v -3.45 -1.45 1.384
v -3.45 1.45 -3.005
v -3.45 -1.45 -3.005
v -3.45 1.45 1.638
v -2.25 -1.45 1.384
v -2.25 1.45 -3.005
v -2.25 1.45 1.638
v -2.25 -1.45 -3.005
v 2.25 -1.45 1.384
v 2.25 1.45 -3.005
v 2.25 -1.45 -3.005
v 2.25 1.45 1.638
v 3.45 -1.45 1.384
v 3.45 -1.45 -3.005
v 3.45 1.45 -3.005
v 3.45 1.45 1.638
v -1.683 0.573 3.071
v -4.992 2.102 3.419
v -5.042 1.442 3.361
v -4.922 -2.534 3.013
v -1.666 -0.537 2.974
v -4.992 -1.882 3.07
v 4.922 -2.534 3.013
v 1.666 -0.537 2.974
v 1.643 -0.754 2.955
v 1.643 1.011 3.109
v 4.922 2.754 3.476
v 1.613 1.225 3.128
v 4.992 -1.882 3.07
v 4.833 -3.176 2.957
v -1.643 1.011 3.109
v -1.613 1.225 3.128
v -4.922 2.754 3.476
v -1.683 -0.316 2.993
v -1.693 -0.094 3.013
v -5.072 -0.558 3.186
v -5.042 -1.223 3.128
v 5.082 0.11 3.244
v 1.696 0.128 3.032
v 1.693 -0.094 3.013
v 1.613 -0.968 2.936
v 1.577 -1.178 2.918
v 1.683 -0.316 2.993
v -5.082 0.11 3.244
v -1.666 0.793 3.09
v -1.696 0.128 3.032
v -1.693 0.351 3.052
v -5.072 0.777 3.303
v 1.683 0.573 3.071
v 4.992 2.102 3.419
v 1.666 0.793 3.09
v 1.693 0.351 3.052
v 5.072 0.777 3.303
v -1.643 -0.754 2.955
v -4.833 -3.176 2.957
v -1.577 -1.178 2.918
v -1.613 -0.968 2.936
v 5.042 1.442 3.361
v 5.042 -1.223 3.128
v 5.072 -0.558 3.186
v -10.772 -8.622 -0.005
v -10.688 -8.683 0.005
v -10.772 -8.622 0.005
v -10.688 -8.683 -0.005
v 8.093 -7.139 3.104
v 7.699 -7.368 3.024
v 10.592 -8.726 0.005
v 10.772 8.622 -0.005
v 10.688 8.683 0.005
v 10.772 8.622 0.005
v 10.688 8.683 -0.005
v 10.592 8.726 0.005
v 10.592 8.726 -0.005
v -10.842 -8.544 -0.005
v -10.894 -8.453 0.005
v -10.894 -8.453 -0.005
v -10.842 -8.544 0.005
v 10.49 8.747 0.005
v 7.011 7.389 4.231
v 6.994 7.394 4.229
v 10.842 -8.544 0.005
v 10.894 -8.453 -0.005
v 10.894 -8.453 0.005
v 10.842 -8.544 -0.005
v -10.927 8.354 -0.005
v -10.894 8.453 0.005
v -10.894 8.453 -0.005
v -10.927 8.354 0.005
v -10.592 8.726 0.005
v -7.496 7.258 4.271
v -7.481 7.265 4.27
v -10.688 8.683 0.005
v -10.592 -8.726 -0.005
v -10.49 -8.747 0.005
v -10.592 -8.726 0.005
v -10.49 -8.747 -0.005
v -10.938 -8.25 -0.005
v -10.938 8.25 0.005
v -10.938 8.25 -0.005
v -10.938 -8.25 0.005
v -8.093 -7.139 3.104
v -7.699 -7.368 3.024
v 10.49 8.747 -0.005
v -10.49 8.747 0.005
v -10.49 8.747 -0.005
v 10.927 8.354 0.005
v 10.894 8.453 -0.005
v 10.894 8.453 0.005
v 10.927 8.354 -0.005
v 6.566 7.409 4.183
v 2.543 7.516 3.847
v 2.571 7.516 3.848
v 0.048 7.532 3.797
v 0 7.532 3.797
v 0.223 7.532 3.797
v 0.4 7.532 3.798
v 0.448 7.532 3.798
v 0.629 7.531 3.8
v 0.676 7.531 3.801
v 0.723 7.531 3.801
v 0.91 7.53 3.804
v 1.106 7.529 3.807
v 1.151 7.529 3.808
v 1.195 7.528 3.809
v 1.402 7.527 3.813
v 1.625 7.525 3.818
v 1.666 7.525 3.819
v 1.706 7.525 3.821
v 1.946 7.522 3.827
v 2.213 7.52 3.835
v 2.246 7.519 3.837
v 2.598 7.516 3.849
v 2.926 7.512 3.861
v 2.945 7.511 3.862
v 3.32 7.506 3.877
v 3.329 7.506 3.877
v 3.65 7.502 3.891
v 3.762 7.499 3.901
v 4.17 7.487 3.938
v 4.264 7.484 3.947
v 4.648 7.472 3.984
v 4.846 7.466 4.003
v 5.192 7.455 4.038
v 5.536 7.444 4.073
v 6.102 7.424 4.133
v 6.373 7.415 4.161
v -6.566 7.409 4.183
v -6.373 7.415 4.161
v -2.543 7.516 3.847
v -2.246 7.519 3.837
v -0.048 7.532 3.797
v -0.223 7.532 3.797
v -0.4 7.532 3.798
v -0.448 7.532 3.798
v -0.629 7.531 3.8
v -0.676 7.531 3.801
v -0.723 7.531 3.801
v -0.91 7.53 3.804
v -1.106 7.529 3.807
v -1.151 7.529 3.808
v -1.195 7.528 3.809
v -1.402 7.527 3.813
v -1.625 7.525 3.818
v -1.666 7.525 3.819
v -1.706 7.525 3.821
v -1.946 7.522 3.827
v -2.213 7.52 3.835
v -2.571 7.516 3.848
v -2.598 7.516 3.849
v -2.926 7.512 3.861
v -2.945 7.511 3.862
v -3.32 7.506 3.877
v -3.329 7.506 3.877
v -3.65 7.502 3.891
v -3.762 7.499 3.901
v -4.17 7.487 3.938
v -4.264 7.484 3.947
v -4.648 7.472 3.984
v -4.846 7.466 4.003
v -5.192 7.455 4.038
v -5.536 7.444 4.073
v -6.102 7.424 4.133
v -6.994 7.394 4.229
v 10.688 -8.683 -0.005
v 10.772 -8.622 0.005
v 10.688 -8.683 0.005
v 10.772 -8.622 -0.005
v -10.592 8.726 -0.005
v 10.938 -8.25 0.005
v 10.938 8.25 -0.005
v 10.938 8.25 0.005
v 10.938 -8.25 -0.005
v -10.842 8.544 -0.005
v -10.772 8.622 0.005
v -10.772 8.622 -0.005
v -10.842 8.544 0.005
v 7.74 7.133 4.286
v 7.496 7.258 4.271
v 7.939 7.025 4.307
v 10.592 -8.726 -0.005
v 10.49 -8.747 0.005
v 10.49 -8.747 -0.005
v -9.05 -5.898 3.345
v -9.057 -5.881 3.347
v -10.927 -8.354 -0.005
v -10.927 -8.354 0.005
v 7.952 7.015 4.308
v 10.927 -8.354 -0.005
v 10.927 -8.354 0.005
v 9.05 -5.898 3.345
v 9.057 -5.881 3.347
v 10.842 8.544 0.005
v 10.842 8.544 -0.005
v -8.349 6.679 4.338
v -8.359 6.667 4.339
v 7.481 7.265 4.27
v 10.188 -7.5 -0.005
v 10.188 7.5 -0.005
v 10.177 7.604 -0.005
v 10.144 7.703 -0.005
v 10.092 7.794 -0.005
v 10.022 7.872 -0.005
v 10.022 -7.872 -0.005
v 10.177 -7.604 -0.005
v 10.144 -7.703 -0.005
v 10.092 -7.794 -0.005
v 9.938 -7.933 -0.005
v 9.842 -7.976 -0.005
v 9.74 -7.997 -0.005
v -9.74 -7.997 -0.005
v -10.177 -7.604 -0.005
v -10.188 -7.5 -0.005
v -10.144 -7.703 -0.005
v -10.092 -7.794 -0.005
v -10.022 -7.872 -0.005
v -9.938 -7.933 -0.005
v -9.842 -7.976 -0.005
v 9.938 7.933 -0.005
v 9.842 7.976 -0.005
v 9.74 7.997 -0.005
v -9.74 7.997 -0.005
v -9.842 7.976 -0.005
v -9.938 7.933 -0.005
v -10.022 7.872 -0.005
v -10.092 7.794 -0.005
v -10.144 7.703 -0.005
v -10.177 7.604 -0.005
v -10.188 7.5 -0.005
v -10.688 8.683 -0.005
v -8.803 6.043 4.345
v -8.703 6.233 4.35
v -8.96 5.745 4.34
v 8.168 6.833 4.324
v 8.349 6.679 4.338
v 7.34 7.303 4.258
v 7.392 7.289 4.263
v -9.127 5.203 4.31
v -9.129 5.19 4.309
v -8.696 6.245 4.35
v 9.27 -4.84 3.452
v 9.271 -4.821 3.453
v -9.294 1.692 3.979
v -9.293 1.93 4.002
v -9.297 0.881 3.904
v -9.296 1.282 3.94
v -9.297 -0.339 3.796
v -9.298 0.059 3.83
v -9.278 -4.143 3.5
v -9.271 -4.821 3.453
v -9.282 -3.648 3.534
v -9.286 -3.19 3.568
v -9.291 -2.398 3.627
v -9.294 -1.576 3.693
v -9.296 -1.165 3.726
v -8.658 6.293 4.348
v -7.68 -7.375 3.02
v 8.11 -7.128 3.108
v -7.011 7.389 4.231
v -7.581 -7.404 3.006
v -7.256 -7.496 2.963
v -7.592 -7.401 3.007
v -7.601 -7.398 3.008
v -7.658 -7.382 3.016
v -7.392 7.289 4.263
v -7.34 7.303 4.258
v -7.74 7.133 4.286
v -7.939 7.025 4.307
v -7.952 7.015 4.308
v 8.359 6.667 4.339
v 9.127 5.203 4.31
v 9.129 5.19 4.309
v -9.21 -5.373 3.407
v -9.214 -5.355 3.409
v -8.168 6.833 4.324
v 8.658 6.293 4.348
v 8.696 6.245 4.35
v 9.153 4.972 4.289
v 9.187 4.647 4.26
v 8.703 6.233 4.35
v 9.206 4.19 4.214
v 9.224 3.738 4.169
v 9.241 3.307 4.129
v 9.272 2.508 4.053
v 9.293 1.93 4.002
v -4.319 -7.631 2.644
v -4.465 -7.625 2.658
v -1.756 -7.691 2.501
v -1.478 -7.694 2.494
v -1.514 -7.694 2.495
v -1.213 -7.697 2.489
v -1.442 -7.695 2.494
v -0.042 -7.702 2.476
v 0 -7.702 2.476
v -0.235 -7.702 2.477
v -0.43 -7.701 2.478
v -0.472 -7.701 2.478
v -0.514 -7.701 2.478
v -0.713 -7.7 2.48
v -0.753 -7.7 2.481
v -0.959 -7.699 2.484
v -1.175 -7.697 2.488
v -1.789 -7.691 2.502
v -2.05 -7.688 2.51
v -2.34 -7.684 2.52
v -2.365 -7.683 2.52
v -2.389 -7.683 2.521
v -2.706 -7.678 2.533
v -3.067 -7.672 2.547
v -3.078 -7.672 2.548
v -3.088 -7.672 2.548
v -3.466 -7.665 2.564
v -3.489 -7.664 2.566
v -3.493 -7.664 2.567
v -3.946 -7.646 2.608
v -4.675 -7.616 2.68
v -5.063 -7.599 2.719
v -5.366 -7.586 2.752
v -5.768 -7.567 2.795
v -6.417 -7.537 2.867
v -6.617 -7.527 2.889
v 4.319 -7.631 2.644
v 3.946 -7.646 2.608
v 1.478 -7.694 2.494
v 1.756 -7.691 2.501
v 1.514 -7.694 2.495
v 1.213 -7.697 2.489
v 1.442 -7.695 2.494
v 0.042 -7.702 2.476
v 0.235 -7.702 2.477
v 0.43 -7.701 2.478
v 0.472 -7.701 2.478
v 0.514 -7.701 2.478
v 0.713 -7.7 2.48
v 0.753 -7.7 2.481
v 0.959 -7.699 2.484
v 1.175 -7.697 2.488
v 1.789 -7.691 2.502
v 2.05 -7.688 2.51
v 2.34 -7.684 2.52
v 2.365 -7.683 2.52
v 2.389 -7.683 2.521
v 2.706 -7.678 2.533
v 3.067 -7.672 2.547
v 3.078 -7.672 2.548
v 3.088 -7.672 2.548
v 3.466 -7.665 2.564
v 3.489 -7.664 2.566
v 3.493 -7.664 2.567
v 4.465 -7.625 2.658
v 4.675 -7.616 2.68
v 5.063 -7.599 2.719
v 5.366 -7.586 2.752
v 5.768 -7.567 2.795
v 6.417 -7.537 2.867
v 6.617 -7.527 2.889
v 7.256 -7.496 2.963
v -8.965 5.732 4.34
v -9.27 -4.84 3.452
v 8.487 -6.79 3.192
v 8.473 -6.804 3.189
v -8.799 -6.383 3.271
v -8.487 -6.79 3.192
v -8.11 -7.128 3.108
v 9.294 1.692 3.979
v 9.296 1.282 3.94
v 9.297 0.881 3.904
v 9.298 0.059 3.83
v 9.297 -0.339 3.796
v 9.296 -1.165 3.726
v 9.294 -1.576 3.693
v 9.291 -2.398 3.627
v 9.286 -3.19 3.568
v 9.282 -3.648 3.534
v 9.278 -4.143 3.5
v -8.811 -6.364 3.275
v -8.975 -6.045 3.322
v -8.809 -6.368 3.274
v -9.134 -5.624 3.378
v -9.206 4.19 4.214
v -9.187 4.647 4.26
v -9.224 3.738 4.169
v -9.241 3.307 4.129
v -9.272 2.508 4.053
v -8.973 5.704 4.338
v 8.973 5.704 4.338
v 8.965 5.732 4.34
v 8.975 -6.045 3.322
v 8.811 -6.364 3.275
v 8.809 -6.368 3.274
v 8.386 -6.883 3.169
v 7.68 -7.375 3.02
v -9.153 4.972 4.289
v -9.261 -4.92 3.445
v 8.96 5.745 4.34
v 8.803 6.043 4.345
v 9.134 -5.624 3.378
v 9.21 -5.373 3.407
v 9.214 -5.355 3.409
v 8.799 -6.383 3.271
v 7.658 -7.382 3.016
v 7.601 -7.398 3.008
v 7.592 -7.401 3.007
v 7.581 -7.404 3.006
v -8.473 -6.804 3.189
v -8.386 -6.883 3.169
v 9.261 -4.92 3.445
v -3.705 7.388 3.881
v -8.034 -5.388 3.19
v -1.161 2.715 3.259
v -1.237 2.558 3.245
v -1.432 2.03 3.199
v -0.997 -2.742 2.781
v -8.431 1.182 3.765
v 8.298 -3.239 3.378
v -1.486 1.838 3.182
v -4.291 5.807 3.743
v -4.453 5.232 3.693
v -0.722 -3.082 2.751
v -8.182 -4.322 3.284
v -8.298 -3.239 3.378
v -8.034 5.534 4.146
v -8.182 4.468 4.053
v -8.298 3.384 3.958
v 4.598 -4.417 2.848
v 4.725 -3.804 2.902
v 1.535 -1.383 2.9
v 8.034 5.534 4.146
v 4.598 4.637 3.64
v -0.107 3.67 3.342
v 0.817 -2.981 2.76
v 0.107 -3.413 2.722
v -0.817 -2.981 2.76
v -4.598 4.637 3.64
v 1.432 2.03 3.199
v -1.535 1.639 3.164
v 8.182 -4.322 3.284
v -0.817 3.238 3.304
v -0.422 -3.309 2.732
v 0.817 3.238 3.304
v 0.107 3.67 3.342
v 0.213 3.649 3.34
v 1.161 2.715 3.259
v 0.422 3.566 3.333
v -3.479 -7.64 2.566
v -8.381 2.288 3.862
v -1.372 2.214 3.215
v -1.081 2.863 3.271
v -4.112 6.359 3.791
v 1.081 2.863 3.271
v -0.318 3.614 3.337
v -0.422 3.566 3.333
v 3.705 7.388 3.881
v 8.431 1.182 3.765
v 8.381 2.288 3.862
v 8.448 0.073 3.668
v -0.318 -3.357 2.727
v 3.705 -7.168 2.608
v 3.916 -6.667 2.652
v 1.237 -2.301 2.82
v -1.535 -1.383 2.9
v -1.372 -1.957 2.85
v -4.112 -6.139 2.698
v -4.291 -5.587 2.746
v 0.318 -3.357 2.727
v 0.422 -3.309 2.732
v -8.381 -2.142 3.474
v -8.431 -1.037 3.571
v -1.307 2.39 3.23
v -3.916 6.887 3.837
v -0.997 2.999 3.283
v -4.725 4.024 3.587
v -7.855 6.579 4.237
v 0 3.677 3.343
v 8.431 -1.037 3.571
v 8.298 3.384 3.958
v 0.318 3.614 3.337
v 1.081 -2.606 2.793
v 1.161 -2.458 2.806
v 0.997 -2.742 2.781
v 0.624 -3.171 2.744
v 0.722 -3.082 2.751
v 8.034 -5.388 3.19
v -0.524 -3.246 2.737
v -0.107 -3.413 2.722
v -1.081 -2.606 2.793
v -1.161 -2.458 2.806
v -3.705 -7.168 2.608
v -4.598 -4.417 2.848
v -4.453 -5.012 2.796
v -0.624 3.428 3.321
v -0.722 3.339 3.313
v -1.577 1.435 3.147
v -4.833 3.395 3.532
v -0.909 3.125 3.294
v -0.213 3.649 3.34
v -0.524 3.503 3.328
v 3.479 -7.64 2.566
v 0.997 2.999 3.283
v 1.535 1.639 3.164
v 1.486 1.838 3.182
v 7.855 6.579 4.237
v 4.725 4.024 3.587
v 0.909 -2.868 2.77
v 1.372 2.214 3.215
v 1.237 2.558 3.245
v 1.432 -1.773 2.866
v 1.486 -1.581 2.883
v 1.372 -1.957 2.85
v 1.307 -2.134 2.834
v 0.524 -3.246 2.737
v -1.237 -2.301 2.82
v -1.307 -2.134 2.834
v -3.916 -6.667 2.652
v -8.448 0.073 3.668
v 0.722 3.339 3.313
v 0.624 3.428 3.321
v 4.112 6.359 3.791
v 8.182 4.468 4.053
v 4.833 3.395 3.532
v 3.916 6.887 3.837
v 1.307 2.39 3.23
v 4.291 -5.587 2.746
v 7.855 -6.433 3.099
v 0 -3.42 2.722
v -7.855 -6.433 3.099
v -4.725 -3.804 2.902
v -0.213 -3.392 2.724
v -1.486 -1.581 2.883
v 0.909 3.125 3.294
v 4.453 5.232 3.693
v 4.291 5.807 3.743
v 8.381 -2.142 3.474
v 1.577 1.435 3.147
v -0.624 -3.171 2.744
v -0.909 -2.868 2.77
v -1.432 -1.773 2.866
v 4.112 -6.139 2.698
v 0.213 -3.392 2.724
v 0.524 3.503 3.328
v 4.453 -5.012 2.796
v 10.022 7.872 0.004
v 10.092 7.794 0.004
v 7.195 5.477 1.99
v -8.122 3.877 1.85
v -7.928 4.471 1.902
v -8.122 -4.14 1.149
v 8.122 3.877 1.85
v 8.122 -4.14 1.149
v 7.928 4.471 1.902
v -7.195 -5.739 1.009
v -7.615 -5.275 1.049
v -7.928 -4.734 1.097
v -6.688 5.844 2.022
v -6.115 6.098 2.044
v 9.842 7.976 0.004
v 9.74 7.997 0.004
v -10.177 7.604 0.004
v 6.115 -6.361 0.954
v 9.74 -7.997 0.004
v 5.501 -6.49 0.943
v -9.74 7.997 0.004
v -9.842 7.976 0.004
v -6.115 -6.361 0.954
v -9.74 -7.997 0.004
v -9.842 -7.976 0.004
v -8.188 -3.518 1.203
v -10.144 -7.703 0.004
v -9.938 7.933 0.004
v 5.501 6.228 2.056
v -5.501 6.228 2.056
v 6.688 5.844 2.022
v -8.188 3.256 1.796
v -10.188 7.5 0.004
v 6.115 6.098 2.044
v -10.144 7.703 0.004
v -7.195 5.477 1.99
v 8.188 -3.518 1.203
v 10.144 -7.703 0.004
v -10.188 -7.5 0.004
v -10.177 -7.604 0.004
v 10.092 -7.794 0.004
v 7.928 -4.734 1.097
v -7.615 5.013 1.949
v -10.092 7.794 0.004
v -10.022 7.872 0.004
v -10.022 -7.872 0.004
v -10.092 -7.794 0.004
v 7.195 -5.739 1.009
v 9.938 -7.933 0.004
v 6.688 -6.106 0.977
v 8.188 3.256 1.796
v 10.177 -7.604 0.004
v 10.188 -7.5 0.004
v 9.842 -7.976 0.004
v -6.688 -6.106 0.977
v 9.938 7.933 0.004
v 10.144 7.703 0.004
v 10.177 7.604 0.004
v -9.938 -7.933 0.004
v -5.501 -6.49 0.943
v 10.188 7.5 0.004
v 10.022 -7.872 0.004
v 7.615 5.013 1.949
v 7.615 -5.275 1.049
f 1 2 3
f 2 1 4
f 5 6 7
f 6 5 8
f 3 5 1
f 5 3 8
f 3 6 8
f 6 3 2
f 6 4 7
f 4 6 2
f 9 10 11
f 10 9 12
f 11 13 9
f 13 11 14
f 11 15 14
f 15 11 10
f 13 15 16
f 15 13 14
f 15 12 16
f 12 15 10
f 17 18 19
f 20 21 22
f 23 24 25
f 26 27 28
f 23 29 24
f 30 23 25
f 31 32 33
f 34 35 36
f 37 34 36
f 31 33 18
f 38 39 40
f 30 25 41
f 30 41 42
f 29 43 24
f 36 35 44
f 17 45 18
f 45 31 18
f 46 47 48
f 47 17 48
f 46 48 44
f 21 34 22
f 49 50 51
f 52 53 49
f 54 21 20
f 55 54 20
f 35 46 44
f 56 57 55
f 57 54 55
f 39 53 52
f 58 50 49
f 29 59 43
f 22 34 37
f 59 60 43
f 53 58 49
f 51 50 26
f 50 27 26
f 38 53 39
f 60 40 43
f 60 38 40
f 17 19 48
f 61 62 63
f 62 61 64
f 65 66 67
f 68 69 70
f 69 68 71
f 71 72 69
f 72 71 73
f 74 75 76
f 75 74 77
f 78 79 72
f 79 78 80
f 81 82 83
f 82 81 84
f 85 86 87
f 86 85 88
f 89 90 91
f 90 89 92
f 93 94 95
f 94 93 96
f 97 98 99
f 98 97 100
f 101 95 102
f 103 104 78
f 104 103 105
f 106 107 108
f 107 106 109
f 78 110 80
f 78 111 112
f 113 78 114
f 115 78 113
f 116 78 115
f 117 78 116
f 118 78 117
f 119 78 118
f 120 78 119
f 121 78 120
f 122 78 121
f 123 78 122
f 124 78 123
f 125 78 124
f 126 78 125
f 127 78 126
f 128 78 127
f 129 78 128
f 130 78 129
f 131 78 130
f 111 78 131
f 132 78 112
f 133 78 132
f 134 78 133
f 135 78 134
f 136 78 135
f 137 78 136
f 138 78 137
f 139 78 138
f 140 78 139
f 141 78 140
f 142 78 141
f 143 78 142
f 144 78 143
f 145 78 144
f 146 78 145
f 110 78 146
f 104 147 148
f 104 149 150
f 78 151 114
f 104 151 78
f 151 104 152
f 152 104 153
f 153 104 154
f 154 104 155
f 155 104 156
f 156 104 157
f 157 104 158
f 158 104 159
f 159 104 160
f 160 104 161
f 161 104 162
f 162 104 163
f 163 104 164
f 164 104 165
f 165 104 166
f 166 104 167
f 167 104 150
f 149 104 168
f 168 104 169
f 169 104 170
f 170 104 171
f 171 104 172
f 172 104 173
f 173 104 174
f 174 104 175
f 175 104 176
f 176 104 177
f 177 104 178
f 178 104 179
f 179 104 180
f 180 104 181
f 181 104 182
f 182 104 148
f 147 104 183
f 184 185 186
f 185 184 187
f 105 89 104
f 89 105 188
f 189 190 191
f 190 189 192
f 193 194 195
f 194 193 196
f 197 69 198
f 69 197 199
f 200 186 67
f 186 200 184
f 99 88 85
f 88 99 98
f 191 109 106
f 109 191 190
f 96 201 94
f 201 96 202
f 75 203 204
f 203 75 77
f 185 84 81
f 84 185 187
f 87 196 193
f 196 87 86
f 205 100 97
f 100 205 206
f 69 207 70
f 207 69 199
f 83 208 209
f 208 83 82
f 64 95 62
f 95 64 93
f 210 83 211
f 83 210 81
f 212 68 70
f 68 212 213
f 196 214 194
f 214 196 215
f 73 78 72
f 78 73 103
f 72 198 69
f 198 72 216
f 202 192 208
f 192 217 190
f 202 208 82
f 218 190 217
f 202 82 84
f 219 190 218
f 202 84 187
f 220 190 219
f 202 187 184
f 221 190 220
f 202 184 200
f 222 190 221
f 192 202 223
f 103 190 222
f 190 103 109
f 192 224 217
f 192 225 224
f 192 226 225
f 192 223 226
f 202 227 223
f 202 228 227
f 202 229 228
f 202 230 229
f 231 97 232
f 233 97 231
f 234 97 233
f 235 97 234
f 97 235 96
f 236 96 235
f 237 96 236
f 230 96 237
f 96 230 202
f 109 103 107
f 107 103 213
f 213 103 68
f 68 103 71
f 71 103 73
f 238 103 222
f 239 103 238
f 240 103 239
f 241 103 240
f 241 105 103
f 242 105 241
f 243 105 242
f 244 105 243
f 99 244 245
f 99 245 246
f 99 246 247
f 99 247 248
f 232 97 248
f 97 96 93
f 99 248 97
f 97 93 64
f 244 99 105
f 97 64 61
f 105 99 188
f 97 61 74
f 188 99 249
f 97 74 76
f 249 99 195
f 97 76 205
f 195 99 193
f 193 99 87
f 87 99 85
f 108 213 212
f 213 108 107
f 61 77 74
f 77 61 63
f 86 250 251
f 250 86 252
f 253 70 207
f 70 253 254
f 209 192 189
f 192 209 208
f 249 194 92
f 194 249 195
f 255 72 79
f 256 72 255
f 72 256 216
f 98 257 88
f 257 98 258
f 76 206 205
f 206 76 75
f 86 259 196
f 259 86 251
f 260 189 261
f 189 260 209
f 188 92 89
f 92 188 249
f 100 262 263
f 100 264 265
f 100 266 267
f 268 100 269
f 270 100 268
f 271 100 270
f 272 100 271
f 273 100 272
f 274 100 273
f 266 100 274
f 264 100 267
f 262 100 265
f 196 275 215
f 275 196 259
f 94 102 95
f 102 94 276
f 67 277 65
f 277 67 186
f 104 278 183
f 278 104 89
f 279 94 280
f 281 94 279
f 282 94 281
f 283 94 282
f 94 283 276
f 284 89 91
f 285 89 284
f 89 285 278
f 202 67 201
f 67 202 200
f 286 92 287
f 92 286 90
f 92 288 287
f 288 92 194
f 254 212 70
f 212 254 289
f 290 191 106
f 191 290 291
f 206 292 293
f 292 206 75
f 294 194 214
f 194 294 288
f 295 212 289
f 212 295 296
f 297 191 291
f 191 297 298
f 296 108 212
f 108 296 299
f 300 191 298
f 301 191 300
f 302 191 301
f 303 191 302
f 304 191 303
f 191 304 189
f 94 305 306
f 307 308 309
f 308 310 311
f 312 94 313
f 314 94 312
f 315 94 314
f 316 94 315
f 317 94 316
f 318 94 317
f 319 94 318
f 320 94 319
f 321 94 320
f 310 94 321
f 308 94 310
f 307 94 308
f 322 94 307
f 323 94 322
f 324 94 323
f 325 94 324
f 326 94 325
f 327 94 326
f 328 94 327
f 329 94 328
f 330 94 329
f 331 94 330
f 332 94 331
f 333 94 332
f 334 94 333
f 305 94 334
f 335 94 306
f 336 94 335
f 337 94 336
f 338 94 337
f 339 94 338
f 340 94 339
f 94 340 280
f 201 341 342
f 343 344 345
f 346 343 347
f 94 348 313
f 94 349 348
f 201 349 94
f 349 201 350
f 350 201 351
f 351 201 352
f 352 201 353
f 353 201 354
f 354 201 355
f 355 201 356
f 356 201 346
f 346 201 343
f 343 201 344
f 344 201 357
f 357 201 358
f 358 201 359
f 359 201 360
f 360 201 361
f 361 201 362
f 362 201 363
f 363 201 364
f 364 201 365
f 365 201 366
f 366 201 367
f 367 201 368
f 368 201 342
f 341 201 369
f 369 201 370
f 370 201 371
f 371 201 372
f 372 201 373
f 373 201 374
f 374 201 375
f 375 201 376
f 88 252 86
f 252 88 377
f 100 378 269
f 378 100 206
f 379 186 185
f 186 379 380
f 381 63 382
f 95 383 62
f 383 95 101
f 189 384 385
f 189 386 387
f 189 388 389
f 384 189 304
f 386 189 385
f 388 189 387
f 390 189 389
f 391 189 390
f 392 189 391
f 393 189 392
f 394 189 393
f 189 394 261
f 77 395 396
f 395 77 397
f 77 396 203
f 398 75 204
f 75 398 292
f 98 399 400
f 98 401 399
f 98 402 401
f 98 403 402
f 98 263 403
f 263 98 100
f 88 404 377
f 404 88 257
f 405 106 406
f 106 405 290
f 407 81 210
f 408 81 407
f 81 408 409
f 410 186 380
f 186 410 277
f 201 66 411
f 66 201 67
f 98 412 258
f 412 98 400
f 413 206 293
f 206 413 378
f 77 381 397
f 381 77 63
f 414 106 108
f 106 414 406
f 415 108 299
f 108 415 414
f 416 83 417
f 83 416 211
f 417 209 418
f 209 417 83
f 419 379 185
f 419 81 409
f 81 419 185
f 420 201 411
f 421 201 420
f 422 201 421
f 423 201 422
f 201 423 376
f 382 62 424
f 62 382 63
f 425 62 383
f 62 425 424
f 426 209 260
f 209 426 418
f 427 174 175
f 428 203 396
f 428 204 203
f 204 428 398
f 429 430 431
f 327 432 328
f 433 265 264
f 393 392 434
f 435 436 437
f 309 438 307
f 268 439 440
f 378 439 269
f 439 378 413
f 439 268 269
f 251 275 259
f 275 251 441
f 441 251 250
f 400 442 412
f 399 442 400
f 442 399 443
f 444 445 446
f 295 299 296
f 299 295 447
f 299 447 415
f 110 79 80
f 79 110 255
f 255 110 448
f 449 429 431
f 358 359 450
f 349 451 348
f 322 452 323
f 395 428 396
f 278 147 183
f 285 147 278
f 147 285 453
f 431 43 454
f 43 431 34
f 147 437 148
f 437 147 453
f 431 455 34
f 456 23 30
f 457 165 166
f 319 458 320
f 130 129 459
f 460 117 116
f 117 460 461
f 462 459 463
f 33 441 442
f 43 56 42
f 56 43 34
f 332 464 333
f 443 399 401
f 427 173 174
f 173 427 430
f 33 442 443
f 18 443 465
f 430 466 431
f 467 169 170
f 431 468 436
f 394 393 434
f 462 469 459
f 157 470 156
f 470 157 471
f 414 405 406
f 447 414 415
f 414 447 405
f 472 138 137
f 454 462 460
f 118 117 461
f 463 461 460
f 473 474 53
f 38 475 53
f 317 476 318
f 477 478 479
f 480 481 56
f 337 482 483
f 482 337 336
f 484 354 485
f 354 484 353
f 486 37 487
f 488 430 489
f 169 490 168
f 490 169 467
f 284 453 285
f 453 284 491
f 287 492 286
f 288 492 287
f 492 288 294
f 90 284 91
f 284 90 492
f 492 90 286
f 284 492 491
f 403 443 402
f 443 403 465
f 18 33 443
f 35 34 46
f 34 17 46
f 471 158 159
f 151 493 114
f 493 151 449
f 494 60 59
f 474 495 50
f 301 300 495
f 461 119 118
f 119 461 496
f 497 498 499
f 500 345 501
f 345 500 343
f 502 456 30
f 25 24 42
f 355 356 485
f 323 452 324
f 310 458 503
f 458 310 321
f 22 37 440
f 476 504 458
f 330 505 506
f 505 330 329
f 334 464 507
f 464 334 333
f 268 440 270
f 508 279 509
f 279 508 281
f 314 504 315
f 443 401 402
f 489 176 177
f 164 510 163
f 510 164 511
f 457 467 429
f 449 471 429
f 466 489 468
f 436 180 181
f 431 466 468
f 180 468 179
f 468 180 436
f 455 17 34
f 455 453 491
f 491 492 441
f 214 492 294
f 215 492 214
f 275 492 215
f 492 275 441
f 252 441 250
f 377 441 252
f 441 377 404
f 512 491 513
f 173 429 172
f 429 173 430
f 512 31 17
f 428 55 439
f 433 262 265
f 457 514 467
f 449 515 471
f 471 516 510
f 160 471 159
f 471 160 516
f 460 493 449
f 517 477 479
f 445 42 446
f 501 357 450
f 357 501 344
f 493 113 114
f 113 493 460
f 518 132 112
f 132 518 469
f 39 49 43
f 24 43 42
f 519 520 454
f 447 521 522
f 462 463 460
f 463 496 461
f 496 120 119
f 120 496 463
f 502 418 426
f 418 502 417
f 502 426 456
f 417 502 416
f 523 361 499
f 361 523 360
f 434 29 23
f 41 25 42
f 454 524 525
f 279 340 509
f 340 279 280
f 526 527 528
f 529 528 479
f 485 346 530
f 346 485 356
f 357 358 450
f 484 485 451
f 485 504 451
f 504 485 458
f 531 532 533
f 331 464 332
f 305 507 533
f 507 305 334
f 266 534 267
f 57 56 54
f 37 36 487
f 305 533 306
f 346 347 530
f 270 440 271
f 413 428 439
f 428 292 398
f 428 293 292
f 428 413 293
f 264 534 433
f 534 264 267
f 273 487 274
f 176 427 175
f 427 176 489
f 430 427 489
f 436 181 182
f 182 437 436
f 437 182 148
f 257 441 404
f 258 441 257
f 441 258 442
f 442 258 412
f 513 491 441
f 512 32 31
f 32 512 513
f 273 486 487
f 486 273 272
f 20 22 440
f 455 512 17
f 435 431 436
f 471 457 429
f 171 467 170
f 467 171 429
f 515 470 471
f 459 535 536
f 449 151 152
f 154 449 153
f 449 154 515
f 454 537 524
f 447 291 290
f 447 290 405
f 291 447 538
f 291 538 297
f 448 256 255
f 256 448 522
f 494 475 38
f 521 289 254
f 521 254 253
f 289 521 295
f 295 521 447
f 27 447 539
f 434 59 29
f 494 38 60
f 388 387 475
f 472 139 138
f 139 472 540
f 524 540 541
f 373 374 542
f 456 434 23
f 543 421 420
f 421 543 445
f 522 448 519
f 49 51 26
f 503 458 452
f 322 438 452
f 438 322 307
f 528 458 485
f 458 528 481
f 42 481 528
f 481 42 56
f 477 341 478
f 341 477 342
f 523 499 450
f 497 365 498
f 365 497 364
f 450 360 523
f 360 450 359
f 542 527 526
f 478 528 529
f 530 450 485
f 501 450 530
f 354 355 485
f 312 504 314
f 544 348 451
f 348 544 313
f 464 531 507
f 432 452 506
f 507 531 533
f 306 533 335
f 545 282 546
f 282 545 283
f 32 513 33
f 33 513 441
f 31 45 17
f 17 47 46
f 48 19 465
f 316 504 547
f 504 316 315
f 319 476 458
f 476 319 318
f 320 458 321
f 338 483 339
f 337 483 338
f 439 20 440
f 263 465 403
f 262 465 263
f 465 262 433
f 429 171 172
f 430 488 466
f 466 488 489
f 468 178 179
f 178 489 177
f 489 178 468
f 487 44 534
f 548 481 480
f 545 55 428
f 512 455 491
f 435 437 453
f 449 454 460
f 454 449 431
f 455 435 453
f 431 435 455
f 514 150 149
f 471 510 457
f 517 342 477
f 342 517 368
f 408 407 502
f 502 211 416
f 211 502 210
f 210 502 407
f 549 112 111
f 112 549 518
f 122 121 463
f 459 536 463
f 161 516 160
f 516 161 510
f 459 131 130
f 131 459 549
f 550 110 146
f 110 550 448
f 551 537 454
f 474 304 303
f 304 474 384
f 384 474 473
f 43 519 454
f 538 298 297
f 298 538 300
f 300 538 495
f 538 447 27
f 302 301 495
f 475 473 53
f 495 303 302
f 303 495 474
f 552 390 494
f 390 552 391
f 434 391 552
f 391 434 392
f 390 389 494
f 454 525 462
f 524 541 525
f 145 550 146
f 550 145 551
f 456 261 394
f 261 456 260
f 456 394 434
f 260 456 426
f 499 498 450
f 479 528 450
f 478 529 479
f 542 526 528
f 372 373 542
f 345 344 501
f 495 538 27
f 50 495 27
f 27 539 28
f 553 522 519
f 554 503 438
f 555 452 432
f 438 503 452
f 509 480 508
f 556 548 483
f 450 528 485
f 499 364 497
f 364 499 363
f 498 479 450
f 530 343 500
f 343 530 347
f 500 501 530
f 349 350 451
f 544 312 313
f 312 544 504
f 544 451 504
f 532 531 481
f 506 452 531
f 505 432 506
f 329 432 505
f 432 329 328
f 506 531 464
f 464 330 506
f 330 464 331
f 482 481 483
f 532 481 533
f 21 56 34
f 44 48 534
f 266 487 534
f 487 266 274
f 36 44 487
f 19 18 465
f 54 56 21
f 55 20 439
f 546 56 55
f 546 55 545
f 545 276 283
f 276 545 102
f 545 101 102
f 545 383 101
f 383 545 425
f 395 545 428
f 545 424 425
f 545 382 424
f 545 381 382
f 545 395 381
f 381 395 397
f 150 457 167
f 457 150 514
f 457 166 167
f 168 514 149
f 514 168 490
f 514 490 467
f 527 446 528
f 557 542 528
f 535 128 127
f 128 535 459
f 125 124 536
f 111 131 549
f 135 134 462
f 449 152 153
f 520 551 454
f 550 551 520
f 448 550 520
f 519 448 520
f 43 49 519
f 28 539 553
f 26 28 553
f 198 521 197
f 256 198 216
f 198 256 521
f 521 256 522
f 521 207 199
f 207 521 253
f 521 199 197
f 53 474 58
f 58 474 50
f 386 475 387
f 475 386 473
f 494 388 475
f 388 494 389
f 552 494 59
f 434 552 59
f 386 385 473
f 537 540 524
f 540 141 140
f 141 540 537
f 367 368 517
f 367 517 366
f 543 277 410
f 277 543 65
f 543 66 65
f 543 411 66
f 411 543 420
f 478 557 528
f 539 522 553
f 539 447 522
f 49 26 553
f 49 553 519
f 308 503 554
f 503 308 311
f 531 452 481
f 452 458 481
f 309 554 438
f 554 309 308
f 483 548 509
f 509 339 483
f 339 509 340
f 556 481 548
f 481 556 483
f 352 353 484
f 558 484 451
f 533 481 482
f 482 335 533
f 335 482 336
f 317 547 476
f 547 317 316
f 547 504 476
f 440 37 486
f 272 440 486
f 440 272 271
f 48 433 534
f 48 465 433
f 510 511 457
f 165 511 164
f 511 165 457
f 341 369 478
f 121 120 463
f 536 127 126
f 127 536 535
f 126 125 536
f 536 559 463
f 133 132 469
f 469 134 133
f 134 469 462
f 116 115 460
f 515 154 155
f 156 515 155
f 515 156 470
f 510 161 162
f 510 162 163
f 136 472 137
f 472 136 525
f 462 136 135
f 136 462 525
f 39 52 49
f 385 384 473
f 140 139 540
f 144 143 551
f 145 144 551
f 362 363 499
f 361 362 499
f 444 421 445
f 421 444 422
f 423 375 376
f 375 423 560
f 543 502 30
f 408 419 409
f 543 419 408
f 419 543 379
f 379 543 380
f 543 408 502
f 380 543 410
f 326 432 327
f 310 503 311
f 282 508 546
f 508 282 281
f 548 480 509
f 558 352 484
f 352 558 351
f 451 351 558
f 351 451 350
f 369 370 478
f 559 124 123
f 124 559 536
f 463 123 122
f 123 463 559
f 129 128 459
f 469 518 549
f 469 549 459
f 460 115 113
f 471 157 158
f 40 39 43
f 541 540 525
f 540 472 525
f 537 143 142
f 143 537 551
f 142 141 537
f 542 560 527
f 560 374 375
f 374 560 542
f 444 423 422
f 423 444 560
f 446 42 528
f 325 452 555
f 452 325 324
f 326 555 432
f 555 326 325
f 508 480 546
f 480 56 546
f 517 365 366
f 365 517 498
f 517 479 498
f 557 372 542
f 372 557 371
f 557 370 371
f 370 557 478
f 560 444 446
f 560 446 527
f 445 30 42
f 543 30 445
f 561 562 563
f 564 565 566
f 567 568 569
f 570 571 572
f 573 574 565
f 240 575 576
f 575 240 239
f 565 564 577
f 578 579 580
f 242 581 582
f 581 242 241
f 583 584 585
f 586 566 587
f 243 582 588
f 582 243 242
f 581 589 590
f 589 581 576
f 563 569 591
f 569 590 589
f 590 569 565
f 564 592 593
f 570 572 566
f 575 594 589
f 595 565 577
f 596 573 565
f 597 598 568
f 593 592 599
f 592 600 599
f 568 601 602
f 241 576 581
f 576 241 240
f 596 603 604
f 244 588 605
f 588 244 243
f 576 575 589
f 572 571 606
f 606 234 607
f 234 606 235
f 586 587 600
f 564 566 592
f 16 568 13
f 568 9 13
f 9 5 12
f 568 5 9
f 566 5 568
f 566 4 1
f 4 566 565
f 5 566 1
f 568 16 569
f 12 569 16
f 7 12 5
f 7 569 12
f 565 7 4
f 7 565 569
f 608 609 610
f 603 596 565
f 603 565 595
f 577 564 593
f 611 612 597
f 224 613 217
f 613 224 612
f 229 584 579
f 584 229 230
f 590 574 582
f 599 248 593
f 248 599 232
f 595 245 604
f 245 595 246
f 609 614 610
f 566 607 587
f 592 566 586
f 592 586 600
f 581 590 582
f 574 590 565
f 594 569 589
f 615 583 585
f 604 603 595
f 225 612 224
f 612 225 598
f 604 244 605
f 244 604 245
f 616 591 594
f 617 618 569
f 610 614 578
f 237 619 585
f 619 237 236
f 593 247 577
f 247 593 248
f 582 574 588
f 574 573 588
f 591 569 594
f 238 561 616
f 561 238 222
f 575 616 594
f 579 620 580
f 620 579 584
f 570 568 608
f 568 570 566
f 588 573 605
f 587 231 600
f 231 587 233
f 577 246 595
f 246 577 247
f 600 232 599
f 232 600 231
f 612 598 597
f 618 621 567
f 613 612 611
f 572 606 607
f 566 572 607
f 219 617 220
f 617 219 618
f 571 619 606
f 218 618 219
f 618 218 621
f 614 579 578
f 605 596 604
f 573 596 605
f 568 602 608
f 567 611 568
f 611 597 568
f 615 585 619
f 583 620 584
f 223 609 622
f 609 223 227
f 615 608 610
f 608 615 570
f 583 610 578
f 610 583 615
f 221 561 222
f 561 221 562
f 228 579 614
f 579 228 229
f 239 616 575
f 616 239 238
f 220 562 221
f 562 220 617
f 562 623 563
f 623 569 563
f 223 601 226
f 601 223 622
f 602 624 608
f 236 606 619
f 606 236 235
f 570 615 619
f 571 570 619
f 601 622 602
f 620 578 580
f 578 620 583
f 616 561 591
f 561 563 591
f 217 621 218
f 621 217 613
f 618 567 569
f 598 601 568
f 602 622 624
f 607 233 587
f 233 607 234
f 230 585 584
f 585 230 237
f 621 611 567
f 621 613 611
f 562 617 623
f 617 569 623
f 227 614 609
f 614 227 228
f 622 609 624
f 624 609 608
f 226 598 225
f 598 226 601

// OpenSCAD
union () {
  difference () {
    translate ([-2.85, 0, 0]) {
      union () {
        color ([0, 1, 0, ]) {
          hull () {
            translate ([0, 0, 5]) {
              cube ([1.2, 2.9, 0.01], center=true);
            }
            translate ([0, 0, -3]) {
              translate ([0, 0, 0]) {
                cube ([1.2, 2.9, 0.01], center=true);
              }
            }
          }
        }
        color ([0, 1, 0, ]) {
          hull () {
            translate ([5.7, 0, 5]) {
              cube ([1.2, 2.9, 0.01], center=true);
            }
            translate ([0, 0, -3]) {
              translate ([5.7, 0, 0]) {
                cube ([1.2, 2.9, 0.01], center=true);
              }
            }
          }
        }
      }
    }
    translate ([0, 0, 4.5]) {
      rotate ([5.000000000000001,0.0,0.0]) {
        translate ([0, 0, 52.50260416666668]) {
          scale ([1, 2.1, 1]) {
            sphere ($fn=100, r=54.00260416666668);
          }
        }
      }
    }
  }
  difference () {
    difference () {
      hull () {
        translate ([0, 0, 4.5]) {
          rotate ([5.000000000000001,0.0,0.0]) {
            minkowski () {
              cube ([11.875, 8.3, 0.0099], center=true);
              cylinder ($fs=0.1, h=1.0E-4, r=3, center=true);
            }
          }
        }
        minkowski () {
          cube ([20.875, 16.5, 0.0099], center=true);
          cylinder ($fs=0.1, h=1.0E-4, r=0.5, center=true);
        }
      }
      translate ([0, 0, 4.5]) {
        rotate ([5.000000000000001,0.0,0.0]) {
          translate ([0, 0, 52.50260416666668]) {
            scale ([1, 2.1, 1]) {
              sphere ($fn=100, r=54.00260416666668);
            }
          }
        }
      }
    }
    #union () {
      hull () {
        rotate ([5.000000000000001,0.0,0.0]) {
          translate ([0, 0, 1.5]) {
            minkowski () {
              cube ([10.375, 6.800000000000001, 0.0099], center=true);
              cylinder ($fs=0.1, h=1.0E-4, r=3, center=true);
            }
          }
        }
        translate ([0, 0, -0.001]) {
          minkowski () {
            cube ([19.375, 15.0, 0.0099], center=true);
            cylinder ($fs=0.1, h=1.0E-4, r=0.5, center=true);
          }
        }
      }
    }
  }
}
